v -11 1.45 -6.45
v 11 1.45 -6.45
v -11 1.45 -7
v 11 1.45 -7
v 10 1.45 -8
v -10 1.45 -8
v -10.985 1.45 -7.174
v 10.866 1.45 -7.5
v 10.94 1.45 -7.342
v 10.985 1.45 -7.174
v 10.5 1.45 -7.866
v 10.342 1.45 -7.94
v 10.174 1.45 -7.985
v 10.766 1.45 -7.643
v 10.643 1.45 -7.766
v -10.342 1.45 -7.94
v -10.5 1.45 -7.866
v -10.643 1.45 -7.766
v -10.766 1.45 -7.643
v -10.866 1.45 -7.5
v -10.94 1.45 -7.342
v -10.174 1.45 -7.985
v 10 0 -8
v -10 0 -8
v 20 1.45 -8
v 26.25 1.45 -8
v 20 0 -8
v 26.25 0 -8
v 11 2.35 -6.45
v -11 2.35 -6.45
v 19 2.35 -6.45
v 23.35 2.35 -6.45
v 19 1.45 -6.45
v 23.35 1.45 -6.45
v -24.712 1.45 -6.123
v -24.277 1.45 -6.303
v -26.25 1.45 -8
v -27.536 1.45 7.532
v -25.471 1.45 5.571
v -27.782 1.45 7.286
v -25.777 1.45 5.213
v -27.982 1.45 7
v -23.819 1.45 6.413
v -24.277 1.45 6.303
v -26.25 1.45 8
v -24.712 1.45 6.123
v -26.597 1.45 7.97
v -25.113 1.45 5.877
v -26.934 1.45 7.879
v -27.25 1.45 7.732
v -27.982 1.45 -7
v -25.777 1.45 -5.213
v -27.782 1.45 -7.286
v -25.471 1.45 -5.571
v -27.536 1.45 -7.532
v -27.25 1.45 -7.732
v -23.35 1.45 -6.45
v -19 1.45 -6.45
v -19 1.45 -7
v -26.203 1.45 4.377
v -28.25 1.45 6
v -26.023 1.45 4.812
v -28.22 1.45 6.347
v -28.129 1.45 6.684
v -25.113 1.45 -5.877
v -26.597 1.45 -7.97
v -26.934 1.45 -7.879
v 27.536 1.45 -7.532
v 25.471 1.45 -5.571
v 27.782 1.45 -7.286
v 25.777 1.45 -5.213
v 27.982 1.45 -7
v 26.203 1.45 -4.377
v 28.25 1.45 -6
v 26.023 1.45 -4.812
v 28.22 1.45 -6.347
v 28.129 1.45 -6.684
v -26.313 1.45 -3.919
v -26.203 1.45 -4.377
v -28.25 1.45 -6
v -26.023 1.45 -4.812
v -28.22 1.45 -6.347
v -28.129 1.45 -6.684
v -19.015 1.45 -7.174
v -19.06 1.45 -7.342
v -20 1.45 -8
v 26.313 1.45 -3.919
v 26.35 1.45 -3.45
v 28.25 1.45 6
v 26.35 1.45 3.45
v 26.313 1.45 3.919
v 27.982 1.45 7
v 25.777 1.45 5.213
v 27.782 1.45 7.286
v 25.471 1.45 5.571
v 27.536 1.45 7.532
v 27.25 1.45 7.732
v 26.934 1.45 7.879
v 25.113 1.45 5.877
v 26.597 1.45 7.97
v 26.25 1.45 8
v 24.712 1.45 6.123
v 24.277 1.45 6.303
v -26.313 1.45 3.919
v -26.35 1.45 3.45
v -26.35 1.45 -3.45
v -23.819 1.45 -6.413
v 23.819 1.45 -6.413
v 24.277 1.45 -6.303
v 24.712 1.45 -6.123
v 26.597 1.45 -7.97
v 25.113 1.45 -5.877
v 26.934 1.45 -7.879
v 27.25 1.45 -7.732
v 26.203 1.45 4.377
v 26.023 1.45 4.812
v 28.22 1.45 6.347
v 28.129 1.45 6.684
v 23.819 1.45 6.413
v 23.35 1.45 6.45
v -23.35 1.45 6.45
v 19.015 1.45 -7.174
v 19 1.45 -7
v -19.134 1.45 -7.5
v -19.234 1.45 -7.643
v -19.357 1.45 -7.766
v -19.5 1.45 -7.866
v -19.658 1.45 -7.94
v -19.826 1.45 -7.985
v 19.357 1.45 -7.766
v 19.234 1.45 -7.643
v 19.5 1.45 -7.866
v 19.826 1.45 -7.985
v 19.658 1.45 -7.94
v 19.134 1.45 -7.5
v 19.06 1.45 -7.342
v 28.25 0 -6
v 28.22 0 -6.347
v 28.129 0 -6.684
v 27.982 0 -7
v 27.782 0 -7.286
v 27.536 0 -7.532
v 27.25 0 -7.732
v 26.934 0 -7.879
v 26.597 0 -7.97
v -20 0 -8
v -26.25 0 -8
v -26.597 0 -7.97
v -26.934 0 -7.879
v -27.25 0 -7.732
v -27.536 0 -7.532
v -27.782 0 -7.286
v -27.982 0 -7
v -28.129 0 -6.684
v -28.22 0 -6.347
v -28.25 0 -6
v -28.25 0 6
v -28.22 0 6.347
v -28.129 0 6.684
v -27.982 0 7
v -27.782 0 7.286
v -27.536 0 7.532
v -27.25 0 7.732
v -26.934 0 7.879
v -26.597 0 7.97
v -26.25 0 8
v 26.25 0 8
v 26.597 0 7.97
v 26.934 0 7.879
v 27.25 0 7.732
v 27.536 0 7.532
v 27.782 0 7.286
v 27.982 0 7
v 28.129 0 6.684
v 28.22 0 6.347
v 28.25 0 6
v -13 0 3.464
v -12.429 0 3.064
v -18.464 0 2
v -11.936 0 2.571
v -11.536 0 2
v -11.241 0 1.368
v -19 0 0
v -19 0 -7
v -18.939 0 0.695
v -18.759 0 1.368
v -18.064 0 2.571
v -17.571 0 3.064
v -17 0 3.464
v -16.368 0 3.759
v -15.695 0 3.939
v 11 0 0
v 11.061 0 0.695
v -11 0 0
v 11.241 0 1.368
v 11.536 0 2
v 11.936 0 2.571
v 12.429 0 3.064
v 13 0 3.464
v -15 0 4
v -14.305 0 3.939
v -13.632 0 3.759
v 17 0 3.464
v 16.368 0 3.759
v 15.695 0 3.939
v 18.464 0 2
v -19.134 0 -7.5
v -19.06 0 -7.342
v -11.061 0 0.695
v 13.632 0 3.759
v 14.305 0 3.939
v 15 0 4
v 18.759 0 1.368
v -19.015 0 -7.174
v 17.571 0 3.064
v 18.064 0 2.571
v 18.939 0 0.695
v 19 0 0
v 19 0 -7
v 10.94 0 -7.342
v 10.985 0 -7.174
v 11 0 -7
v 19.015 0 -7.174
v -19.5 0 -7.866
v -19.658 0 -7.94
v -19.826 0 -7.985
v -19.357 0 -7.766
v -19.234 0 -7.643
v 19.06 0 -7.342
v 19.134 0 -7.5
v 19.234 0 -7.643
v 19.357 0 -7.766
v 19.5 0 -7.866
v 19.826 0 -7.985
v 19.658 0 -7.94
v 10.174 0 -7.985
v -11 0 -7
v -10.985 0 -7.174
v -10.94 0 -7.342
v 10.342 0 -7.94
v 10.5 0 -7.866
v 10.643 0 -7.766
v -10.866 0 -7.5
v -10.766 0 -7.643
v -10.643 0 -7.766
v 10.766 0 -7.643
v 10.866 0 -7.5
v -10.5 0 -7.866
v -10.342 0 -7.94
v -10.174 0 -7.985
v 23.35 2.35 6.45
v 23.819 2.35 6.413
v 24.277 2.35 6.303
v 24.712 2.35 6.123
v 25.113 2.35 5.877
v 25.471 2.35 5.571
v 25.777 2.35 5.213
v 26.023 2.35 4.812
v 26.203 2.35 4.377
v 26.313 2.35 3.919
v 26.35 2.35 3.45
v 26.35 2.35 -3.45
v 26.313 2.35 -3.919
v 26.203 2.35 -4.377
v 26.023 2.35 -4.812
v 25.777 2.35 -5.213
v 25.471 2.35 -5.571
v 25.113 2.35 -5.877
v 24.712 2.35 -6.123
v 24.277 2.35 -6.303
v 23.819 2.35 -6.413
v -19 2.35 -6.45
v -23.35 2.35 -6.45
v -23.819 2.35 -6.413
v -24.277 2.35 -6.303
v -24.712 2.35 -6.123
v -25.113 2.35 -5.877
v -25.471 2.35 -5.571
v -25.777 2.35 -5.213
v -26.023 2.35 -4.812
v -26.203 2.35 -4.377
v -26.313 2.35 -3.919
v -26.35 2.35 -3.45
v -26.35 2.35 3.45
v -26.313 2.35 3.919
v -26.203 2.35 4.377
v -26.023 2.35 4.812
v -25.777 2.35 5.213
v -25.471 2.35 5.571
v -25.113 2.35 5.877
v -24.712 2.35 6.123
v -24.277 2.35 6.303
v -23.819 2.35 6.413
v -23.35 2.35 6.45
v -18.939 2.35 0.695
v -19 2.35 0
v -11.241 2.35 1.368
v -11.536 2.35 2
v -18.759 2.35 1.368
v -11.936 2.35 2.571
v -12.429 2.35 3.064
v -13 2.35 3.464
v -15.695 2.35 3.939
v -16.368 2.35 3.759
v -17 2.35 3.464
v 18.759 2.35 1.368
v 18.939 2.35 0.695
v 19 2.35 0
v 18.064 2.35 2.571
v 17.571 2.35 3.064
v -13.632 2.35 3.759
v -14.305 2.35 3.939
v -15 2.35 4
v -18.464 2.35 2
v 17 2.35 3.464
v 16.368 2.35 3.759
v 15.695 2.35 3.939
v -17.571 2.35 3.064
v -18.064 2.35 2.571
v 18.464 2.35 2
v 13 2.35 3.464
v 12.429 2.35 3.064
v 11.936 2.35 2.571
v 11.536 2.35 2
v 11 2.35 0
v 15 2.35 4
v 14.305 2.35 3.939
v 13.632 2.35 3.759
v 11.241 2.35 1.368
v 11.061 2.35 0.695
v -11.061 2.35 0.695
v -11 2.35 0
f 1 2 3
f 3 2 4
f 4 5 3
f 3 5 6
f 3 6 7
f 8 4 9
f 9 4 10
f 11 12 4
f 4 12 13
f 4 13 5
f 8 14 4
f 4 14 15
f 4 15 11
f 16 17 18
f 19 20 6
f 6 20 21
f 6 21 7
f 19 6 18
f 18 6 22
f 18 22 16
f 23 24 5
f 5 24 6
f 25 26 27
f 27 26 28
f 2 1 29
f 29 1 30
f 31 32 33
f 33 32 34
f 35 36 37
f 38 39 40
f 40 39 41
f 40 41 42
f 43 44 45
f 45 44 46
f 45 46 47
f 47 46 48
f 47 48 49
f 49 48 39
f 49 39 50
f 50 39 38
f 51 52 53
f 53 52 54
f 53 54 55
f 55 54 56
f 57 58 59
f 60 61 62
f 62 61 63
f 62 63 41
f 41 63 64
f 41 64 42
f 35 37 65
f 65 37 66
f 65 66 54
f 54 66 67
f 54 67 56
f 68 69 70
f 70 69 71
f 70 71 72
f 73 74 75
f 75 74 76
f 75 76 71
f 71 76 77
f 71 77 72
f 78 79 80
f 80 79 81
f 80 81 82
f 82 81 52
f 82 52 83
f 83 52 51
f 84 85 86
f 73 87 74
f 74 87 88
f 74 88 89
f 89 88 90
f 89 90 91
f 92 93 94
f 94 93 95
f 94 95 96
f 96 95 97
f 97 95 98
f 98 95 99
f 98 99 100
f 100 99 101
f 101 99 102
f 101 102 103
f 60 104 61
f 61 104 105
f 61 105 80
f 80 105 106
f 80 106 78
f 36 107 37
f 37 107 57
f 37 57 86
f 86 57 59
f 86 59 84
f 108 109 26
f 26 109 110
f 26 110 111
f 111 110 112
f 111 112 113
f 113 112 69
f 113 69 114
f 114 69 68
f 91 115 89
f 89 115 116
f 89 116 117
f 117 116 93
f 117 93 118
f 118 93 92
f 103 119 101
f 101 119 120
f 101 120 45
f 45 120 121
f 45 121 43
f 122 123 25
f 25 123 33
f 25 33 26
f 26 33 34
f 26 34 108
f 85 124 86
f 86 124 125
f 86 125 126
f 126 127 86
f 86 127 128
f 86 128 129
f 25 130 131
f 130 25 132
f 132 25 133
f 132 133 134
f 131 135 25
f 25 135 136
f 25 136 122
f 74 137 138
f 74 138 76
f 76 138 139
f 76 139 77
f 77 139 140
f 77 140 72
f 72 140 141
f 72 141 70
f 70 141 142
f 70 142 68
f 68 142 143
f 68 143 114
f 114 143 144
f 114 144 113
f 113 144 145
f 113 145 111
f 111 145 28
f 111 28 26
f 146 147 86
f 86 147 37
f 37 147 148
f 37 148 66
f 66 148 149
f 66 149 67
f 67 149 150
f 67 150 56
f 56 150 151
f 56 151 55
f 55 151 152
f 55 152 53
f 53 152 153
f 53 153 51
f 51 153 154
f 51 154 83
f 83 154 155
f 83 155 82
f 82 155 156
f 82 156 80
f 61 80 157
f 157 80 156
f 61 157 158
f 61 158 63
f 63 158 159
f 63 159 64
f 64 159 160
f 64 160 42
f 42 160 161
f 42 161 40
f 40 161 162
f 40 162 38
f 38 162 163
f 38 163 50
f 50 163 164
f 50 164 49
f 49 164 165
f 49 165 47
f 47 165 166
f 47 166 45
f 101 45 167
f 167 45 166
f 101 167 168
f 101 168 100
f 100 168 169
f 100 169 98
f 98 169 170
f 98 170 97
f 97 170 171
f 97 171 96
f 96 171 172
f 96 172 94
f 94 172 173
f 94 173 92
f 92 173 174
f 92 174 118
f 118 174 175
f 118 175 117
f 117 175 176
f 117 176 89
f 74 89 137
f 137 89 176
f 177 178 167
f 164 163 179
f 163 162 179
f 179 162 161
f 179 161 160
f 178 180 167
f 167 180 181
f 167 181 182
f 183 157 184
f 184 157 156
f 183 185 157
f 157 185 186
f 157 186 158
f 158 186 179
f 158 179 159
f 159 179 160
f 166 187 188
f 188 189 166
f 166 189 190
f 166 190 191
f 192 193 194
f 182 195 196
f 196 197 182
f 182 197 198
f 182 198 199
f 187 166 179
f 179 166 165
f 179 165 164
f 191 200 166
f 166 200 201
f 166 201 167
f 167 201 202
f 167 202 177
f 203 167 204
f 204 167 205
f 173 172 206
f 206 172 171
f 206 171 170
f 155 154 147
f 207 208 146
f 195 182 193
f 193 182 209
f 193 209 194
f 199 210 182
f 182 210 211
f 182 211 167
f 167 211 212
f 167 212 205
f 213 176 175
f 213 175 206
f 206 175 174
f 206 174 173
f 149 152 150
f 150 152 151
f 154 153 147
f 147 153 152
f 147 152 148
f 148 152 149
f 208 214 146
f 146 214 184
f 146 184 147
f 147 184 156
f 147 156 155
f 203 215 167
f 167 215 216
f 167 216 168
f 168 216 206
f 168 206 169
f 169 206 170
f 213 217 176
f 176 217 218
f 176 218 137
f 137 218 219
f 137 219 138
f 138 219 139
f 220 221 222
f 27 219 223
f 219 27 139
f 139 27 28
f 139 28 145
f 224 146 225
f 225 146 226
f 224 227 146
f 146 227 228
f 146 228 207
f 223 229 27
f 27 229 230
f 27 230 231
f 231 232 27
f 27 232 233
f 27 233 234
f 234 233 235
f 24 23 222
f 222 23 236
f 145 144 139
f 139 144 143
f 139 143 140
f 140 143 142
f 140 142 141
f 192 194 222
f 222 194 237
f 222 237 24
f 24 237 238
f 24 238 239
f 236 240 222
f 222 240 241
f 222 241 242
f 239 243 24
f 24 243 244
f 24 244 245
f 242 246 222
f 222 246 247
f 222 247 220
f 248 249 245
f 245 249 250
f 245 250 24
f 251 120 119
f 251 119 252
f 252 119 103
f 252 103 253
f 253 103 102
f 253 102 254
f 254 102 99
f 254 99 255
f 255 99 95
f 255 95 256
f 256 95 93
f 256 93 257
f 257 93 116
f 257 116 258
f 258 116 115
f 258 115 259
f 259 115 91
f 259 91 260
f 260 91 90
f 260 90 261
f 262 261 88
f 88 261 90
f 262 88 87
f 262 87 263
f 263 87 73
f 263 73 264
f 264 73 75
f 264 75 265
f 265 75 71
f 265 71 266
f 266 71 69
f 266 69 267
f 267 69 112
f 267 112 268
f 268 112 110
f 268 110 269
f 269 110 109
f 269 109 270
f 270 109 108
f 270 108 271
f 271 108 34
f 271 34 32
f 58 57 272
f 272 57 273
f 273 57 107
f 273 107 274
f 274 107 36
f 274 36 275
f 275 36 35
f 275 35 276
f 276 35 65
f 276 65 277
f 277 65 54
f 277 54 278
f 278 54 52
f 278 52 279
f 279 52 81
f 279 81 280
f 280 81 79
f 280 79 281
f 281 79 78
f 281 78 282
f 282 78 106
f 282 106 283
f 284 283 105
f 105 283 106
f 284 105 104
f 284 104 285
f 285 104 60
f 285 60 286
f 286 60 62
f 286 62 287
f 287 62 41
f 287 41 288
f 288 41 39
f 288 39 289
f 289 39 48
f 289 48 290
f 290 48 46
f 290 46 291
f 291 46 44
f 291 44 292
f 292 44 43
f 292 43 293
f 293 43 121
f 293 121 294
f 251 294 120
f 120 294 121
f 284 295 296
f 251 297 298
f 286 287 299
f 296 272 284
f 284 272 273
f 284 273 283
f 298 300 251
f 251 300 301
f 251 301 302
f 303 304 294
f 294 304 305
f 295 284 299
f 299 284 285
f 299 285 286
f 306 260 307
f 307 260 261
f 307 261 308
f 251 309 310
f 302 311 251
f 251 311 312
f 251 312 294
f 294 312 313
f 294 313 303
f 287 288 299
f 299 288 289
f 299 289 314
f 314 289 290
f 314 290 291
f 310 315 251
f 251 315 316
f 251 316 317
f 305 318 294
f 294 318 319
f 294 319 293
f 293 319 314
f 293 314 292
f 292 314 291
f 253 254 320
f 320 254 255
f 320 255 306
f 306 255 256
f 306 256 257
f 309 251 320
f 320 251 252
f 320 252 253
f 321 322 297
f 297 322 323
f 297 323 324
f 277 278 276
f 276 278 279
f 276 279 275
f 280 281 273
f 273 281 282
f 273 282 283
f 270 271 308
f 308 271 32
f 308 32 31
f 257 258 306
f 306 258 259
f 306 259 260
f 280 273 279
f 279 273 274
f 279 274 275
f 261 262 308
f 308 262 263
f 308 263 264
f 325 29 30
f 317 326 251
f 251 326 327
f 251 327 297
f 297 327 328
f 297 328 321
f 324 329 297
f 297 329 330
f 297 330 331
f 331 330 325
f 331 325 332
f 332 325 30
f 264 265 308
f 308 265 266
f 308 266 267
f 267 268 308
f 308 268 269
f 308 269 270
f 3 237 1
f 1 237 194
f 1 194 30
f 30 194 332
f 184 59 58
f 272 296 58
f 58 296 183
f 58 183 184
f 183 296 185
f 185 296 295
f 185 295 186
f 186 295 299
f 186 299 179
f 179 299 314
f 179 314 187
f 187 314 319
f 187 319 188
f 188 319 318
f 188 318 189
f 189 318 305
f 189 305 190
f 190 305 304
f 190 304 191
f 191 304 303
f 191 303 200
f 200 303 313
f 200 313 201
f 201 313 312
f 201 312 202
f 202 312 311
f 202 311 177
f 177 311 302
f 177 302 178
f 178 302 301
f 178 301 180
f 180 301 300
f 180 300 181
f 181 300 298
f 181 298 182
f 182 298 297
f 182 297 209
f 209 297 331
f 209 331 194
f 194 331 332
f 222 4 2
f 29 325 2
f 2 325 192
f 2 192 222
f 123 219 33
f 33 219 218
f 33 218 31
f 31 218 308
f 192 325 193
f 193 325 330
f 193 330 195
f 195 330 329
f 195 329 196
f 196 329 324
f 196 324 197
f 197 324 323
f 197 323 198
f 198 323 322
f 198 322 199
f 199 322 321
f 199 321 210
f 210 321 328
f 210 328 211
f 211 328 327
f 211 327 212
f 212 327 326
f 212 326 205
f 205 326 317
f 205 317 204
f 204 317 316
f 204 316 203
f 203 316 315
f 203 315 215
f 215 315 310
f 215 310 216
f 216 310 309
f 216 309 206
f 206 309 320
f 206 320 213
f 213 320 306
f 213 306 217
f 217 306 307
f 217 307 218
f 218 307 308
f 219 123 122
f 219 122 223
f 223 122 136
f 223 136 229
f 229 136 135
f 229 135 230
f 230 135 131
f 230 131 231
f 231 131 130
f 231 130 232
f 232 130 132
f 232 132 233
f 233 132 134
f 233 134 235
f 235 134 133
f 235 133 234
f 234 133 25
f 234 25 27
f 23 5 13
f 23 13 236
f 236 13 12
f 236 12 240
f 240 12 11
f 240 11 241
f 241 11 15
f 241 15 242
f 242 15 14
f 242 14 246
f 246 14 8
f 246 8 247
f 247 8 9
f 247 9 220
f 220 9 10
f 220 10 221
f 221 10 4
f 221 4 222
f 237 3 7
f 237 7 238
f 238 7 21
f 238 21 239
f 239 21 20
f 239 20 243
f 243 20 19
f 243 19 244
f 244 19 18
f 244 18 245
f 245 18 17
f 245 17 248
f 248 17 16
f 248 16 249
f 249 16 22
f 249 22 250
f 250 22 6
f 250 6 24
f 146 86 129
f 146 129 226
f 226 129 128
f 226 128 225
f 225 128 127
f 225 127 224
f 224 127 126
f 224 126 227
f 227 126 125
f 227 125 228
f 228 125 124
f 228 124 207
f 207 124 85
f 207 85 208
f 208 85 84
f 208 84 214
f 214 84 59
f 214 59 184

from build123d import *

# Parameters (mm, degrees)
BOSS_EXTRUDE1_DEPTH = 1.45
BOSS_EXTRUDE2_DEPTH = 0.9
CUT_EXTRUDE1_DEPTH  = 30.454795874
FILLET1_R           = 1


with BuildPart() as part:
    # Sketch1 → Boss-Extrude1 (new body)
    with BuildSketch(Plane(origin=(0, 0, 0), x_dir=(1, 0, 0), z_dir=(0, 1, 0))):
        with BuildLine():
            Line((-26.25, -8), (26.25, -8))
            ThreePointArc((26.25, -8), (27.664213562, -7.414213562), (28.25, -6))
            Line((28.25, -6), (28.25, 6))
            ThreePointArc((28.25, 6), (27.664213562, 7.414213562), (26.25, 8))
            Line((26.25, 8), (-26.25, 8))
            ThreePointArc((-26.25, 8), (-27.664213562, 7.414213562), (-28.25, 6))
            Line((-28.25, 6), (-28.25, -6))
            ThreePointArc((-28.25, -6), (-27.664213562, -7.414213562), (-26.25, -8))
        make_face()
    extrude(amount=BOSS_EXTRUDE1_DEPTH)

    # Sketch2 → Boss-Extrude2 (add)
    with BuildSketch(Plane(origin=(0, 1.45, 0), x_dir=(1, 0, 0), z_dir=(0, 1, 0))):
        with BuildLine():
            Line((-23.35, -6.45), (23.35, -6.45))
            ThreePointArc((23.35, -6.45), (25.471320344, -5.571320344), (26.35, -3.45))
            Line((26.35, -3.45), (26.35, 3.45))
            ThreePointArc((26.35, 3.45), (25.471320344, 5.571320344), (23.35, 6.45))
            Line((23.35, 6.45), (-23.35, 6.45))
            ThreePointArc((-23.35, 6.45), (-25.471320344, 5.571320344), (-26.35, 3.45))
            Line((-26.35, 3.45), (-26.35, -3.45))
            ThreePointArc((-26.35, -3.45), (-25.471320344, -5.571320344), (-23.35, -6.45))
        make_face()
    extrude(amount=BOSS_EXTRUDE2_DEPTH)

    # Sketch3 → Cut-Extrude1 (cut, through all)
    with BuildSketch(Plane(origin=(0, 2.35, 0), x_dir=(1, 0, 0), z_dir=(0, 1, 0))):
        with BuildLine():
            Line((-19, 0), (-19, 8))
            Line((-19, 8), (-11, 8))
            Line((-11, 8), (-11, 0))
            ThreePointArc((-11, 0), (-15, -4), (-19, 0))
        make_face()
        with BuildLine():
            Line((11, 0), (11, 8))
            Line((11, 8), (19, 8))
            Line((19, 8), (19, 0))
            ThreePointArc((19, 0), (15, -4), (11, 0))
        make_face()
    extrude(amount=-CUT_EXTRUDE1_DEPTH, mode=Mode.SUBTRACT)

    # Fillet1
    fillet1_edges = [part.edges().sort_by_distance(p)[0] for p in [
        (11, 0.725, -8),
        (19, 0.725, -8),
        (-19, 0.725, -8),
        (-11, 0.725, -8),
    ]]
    fillet(fillet1_edges, radius=FILLET1_R)


solid = part.part
